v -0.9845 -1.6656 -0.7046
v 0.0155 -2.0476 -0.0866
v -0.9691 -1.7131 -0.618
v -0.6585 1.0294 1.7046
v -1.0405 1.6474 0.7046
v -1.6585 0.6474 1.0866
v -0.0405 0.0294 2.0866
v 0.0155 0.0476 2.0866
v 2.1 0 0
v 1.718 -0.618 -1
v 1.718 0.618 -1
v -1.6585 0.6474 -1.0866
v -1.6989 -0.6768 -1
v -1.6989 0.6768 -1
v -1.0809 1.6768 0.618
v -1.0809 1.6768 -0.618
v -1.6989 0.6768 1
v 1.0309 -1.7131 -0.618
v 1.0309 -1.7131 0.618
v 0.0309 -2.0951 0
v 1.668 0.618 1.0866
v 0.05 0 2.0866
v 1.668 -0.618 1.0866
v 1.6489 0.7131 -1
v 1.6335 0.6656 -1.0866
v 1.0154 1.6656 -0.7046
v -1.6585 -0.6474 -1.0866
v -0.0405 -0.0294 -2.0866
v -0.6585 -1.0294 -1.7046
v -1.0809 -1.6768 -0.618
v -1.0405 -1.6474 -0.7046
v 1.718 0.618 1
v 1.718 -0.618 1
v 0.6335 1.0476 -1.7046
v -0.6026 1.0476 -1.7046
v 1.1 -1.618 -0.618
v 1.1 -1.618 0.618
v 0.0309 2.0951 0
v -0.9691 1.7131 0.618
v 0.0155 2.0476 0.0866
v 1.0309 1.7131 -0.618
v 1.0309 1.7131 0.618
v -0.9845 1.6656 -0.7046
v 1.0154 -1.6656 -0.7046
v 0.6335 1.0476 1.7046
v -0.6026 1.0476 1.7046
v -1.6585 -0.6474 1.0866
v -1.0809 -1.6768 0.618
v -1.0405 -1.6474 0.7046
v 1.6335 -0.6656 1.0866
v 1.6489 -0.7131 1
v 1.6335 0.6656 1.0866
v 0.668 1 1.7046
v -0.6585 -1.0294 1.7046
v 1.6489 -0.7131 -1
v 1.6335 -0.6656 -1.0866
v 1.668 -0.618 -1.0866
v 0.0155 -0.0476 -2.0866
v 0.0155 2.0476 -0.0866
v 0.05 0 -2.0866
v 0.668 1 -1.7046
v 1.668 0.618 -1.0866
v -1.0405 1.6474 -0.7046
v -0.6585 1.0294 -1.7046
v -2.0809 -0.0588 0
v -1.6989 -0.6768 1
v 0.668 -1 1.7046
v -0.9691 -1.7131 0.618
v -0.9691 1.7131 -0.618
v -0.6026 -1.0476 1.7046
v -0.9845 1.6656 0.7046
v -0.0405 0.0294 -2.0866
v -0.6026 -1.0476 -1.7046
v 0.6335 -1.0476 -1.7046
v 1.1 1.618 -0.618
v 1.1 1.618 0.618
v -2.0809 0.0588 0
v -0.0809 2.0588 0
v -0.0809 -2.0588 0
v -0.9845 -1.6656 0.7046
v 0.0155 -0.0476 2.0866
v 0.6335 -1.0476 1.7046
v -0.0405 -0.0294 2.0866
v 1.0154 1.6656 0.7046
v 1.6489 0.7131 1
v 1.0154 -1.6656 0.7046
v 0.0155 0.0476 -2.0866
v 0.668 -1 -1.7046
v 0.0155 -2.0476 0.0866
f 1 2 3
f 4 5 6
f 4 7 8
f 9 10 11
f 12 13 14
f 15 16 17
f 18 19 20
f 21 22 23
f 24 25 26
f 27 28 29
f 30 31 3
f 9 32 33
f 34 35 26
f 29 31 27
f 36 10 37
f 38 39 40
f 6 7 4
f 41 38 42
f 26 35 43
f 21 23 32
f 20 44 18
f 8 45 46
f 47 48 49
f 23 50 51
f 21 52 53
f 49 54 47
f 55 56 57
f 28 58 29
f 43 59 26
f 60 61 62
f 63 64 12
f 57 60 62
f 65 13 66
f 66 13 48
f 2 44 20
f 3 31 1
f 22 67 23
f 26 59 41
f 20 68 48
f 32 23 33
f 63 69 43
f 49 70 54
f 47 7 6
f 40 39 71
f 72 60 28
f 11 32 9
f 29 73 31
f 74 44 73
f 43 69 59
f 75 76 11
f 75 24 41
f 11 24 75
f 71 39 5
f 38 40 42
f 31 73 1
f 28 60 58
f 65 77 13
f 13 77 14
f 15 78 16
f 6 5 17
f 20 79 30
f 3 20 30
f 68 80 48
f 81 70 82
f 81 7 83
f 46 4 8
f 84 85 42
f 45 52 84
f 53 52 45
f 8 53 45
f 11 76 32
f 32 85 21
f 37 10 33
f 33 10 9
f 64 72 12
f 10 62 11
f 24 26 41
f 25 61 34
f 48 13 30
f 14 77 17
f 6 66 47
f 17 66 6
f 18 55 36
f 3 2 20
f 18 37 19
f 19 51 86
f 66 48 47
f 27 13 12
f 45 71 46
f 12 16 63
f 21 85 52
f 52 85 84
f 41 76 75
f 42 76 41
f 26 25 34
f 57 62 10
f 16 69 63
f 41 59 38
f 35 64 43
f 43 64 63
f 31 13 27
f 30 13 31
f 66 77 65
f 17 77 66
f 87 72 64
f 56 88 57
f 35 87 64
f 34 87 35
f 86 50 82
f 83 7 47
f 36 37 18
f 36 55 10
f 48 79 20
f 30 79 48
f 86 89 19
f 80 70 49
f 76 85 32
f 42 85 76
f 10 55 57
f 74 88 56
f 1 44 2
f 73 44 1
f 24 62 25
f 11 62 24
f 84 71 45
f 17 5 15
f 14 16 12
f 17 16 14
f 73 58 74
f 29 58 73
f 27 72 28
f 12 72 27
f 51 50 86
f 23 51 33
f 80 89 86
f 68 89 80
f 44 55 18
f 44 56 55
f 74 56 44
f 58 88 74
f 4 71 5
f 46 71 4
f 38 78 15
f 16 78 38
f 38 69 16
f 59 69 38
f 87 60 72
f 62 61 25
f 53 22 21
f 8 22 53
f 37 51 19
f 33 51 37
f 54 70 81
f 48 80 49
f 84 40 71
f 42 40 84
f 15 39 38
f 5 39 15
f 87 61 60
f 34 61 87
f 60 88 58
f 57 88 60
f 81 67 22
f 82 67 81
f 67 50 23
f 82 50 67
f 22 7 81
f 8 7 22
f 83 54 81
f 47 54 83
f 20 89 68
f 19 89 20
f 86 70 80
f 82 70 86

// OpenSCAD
phi = (1 + sqrt(5))/2;

points = [
    [ 2,  0,  0],
    [-2,  0,  0],
    [ 0,  2,  0],
    [ 0, -2,  0],
    [ 0,  0,  2],
    [ 0,  0, -2],

    [ phi,  1/phi,  1],
    [ phi,  1/phi,  1],
    [ phi,  1/phi, -1],
    [ phi, -1/phi,  1],
    [ phi, -1/phi, -1],
    [-phi,  1/phi,  1],
    [-phi,  1/phi, -1],
    [-phi, -1/phi,  1],
    [-phi, -1/phi, -1],

    [ 1,  phi,  1/phi],
    [ 1,  phi, -1/phi],
    [ 1, -phi,  1/phi],
    [ 1, -phi, -1/phi],
    [-1,  phi,  1/phi],
    [-1,  phi, -1/phi],
    [-1, -phi,  1/phi],
    [-1, -phi, -1/phi],
    
    [ 1/phi,  1,  phi],
    [ 1/phi,  1, -phi],
    [ 1/phi, -1,  phi],
    [ 1/phi, -1, -phi],
    [-1/phi,  1,  phi],
    [-1/phi,  1, -phi],
    [-1/phi, -1,  phi],
    [-1/phi, -1, -phi],

];

hull() {
    for (point = points) {
        translate( point ) sphere(0.1);
    }
}
